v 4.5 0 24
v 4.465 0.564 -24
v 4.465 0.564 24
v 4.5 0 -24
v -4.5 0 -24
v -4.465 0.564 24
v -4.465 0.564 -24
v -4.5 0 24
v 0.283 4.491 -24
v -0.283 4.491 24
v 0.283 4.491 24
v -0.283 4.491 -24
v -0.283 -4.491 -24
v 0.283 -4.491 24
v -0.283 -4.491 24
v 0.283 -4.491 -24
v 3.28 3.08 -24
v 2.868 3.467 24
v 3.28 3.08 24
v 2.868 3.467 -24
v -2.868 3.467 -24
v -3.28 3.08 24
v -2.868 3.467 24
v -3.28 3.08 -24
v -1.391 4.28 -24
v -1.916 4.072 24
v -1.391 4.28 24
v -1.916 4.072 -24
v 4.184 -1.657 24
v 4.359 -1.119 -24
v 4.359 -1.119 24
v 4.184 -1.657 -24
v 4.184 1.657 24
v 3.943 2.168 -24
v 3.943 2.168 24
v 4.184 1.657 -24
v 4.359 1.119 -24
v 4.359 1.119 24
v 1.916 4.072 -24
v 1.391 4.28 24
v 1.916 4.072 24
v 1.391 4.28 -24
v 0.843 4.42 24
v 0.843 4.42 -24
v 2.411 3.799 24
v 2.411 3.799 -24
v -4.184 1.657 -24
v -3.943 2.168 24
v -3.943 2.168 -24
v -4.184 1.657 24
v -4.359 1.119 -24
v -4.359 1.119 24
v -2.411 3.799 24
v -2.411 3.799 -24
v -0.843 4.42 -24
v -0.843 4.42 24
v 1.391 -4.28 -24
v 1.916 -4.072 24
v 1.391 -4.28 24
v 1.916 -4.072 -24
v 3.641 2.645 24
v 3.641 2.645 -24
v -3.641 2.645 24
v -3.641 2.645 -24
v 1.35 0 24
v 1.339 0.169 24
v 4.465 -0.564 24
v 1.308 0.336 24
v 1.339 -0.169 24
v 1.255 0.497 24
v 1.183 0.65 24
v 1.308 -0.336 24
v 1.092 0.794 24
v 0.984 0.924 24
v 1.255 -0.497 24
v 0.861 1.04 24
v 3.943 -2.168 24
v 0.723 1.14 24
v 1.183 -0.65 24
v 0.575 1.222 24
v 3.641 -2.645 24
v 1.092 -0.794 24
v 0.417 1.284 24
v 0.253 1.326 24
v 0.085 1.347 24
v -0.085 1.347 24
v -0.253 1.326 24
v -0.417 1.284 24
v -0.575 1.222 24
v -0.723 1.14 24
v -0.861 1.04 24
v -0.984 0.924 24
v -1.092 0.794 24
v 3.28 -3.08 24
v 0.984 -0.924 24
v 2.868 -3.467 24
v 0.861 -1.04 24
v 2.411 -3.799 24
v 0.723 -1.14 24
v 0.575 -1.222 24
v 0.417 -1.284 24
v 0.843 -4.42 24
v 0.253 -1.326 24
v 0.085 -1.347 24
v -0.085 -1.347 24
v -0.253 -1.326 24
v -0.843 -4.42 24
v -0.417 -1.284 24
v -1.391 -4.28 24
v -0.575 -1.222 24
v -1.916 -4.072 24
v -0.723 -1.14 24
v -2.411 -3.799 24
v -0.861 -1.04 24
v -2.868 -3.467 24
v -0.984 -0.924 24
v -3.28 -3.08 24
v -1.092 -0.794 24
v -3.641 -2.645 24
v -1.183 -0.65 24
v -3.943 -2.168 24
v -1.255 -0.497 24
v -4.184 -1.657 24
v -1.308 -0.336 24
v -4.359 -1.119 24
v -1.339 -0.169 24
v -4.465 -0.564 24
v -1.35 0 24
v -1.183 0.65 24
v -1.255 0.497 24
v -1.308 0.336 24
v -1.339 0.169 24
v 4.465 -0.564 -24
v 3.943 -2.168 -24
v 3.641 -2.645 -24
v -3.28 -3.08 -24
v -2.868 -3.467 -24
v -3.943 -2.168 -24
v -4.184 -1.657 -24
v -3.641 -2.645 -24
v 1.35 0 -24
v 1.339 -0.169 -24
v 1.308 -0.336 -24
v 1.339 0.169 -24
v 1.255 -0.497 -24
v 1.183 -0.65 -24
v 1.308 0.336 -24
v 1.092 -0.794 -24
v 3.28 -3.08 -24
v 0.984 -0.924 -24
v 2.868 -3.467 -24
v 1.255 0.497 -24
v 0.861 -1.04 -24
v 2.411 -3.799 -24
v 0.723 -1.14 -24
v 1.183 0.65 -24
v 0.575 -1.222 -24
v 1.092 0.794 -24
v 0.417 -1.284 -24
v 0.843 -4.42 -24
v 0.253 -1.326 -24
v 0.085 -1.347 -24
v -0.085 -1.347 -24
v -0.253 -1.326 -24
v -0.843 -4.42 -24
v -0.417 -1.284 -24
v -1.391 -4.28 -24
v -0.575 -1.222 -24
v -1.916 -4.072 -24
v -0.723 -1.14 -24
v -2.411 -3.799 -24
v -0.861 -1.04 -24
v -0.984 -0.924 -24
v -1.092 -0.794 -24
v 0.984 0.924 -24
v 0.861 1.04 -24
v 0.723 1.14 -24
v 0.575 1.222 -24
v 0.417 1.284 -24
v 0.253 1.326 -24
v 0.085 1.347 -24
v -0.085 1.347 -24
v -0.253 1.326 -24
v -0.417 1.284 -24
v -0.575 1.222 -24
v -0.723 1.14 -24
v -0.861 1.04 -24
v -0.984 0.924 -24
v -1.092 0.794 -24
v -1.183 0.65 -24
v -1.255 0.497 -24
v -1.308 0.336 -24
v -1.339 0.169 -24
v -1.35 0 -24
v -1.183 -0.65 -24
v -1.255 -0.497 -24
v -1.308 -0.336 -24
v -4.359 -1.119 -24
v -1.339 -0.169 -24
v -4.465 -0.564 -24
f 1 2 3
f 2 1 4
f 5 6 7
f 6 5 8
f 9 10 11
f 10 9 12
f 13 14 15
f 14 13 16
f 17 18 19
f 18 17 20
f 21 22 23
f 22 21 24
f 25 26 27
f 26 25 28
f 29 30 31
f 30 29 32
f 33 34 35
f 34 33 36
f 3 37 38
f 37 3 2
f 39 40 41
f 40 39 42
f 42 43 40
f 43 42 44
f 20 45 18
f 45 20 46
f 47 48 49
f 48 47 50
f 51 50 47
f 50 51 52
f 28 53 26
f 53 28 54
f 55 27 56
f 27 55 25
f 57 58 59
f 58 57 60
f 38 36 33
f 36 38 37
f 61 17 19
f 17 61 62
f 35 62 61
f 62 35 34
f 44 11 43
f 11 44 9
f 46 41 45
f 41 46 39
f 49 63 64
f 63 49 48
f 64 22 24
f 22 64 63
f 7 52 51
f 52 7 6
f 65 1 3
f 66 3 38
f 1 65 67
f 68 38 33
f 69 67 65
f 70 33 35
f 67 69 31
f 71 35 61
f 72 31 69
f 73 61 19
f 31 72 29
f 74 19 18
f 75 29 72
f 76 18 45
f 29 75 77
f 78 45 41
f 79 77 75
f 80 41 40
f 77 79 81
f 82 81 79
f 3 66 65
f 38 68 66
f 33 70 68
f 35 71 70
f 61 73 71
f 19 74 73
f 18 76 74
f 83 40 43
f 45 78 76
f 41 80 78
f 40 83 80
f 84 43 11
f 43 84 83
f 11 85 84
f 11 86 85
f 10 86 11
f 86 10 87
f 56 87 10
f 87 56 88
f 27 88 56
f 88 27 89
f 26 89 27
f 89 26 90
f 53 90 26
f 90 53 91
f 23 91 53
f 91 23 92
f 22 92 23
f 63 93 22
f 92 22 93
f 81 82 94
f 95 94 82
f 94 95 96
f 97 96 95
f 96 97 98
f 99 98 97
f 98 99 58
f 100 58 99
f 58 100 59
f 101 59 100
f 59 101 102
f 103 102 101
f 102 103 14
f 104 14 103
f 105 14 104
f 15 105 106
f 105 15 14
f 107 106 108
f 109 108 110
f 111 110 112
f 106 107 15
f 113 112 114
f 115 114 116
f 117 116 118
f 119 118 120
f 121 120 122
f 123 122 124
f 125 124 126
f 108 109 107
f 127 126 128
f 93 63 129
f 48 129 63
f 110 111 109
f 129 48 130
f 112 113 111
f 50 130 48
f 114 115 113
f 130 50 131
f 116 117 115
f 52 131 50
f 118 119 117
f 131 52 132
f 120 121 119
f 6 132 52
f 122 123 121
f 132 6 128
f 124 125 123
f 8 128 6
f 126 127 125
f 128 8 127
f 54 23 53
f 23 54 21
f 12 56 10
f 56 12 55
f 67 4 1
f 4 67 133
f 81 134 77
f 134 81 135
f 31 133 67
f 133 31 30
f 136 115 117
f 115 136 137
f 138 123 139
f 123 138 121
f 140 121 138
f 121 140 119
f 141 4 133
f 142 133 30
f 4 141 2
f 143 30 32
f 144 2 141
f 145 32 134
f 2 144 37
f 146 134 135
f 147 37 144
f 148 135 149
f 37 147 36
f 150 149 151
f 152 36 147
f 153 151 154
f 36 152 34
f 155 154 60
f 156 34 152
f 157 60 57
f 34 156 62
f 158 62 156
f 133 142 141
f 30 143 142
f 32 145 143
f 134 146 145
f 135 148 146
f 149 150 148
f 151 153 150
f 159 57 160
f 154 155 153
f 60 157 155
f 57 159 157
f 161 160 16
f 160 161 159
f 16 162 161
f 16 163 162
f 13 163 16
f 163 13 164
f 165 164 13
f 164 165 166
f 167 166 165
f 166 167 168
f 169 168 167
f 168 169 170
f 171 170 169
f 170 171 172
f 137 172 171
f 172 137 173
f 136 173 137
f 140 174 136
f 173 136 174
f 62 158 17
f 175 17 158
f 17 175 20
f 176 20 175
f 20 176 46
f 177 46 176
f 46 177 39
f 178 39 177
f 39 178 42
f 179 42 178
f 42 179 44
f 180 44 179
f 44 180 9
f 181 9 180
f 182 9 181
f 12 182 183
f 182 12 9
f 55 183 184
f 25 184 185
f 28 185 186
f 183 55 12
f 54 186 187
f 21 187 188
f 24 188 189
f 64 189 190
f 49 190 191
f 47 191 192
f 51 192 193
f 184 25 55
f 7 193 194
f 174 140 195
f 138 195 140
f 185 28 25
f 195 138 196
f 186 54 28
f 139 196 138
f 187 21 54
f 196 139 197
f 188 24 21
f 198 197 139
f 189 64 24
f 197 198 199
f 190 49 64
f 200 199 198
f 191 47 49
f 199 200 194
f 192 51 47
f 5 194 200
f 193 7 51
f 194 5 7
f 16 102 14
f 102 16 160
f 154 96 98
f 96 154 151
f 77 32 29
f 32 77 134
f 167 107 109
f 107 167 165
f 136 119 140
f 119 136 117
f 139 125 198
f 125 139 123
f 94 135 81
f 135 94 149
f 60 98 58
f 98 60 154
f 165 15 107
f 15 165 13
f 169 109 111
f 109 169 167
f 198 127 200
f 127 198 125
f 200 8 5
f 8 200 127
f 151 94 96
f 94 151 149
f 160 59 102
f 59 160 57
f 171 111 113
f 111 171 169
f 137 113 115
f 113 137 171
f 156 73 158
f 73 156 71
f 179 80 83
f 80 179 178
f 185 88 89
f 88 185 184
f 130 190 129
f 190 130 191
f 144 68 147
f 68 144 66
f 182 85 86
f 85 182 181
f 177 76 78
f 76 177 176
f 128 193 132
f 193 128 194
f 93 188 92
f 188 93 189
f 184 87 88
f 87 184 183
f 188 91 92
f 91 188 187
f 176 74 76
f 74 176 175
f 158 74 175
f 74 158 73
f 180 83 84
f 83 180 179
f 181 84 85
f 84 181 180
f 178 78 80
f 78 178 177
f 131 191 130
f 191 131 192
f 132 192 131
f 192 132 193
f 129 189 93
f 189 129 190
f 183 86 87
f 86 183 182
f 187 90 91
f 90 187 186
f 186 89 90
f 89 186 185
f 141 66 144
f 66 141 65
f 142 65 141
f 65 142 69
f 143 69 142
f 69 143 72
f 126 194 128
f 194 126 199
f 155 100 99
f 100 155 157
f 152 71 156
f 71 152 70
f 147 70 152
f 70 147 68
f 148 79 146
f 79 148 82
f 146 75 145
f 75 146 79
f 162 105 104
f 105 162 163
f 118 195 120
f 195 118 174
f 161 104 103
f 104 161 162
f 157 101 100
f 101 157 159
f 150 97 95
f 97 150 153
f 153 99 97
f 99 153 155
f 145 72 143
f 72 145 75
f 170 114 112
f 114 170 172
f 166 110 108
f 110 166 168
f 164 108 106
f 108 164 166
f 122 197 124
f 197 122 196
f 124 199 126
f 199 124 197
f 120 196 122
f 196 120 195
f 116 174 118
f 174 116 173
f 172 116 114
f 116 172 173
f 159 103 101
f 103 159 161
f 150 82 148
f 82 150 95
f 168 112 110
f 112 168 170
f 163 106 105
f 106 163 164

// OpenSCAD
$fn = 50;


difference() {
	union() {
		translate(v = [0, 0, -24.0000000000]) {
			cylinder(h = 48, r = 4.5000000000);
		}
	}
	union() {
		translate(v = [0, 0, -100.0000000000]) {
			cylinder(h = 200, r = 1.3500000000);
		}
	}
}
